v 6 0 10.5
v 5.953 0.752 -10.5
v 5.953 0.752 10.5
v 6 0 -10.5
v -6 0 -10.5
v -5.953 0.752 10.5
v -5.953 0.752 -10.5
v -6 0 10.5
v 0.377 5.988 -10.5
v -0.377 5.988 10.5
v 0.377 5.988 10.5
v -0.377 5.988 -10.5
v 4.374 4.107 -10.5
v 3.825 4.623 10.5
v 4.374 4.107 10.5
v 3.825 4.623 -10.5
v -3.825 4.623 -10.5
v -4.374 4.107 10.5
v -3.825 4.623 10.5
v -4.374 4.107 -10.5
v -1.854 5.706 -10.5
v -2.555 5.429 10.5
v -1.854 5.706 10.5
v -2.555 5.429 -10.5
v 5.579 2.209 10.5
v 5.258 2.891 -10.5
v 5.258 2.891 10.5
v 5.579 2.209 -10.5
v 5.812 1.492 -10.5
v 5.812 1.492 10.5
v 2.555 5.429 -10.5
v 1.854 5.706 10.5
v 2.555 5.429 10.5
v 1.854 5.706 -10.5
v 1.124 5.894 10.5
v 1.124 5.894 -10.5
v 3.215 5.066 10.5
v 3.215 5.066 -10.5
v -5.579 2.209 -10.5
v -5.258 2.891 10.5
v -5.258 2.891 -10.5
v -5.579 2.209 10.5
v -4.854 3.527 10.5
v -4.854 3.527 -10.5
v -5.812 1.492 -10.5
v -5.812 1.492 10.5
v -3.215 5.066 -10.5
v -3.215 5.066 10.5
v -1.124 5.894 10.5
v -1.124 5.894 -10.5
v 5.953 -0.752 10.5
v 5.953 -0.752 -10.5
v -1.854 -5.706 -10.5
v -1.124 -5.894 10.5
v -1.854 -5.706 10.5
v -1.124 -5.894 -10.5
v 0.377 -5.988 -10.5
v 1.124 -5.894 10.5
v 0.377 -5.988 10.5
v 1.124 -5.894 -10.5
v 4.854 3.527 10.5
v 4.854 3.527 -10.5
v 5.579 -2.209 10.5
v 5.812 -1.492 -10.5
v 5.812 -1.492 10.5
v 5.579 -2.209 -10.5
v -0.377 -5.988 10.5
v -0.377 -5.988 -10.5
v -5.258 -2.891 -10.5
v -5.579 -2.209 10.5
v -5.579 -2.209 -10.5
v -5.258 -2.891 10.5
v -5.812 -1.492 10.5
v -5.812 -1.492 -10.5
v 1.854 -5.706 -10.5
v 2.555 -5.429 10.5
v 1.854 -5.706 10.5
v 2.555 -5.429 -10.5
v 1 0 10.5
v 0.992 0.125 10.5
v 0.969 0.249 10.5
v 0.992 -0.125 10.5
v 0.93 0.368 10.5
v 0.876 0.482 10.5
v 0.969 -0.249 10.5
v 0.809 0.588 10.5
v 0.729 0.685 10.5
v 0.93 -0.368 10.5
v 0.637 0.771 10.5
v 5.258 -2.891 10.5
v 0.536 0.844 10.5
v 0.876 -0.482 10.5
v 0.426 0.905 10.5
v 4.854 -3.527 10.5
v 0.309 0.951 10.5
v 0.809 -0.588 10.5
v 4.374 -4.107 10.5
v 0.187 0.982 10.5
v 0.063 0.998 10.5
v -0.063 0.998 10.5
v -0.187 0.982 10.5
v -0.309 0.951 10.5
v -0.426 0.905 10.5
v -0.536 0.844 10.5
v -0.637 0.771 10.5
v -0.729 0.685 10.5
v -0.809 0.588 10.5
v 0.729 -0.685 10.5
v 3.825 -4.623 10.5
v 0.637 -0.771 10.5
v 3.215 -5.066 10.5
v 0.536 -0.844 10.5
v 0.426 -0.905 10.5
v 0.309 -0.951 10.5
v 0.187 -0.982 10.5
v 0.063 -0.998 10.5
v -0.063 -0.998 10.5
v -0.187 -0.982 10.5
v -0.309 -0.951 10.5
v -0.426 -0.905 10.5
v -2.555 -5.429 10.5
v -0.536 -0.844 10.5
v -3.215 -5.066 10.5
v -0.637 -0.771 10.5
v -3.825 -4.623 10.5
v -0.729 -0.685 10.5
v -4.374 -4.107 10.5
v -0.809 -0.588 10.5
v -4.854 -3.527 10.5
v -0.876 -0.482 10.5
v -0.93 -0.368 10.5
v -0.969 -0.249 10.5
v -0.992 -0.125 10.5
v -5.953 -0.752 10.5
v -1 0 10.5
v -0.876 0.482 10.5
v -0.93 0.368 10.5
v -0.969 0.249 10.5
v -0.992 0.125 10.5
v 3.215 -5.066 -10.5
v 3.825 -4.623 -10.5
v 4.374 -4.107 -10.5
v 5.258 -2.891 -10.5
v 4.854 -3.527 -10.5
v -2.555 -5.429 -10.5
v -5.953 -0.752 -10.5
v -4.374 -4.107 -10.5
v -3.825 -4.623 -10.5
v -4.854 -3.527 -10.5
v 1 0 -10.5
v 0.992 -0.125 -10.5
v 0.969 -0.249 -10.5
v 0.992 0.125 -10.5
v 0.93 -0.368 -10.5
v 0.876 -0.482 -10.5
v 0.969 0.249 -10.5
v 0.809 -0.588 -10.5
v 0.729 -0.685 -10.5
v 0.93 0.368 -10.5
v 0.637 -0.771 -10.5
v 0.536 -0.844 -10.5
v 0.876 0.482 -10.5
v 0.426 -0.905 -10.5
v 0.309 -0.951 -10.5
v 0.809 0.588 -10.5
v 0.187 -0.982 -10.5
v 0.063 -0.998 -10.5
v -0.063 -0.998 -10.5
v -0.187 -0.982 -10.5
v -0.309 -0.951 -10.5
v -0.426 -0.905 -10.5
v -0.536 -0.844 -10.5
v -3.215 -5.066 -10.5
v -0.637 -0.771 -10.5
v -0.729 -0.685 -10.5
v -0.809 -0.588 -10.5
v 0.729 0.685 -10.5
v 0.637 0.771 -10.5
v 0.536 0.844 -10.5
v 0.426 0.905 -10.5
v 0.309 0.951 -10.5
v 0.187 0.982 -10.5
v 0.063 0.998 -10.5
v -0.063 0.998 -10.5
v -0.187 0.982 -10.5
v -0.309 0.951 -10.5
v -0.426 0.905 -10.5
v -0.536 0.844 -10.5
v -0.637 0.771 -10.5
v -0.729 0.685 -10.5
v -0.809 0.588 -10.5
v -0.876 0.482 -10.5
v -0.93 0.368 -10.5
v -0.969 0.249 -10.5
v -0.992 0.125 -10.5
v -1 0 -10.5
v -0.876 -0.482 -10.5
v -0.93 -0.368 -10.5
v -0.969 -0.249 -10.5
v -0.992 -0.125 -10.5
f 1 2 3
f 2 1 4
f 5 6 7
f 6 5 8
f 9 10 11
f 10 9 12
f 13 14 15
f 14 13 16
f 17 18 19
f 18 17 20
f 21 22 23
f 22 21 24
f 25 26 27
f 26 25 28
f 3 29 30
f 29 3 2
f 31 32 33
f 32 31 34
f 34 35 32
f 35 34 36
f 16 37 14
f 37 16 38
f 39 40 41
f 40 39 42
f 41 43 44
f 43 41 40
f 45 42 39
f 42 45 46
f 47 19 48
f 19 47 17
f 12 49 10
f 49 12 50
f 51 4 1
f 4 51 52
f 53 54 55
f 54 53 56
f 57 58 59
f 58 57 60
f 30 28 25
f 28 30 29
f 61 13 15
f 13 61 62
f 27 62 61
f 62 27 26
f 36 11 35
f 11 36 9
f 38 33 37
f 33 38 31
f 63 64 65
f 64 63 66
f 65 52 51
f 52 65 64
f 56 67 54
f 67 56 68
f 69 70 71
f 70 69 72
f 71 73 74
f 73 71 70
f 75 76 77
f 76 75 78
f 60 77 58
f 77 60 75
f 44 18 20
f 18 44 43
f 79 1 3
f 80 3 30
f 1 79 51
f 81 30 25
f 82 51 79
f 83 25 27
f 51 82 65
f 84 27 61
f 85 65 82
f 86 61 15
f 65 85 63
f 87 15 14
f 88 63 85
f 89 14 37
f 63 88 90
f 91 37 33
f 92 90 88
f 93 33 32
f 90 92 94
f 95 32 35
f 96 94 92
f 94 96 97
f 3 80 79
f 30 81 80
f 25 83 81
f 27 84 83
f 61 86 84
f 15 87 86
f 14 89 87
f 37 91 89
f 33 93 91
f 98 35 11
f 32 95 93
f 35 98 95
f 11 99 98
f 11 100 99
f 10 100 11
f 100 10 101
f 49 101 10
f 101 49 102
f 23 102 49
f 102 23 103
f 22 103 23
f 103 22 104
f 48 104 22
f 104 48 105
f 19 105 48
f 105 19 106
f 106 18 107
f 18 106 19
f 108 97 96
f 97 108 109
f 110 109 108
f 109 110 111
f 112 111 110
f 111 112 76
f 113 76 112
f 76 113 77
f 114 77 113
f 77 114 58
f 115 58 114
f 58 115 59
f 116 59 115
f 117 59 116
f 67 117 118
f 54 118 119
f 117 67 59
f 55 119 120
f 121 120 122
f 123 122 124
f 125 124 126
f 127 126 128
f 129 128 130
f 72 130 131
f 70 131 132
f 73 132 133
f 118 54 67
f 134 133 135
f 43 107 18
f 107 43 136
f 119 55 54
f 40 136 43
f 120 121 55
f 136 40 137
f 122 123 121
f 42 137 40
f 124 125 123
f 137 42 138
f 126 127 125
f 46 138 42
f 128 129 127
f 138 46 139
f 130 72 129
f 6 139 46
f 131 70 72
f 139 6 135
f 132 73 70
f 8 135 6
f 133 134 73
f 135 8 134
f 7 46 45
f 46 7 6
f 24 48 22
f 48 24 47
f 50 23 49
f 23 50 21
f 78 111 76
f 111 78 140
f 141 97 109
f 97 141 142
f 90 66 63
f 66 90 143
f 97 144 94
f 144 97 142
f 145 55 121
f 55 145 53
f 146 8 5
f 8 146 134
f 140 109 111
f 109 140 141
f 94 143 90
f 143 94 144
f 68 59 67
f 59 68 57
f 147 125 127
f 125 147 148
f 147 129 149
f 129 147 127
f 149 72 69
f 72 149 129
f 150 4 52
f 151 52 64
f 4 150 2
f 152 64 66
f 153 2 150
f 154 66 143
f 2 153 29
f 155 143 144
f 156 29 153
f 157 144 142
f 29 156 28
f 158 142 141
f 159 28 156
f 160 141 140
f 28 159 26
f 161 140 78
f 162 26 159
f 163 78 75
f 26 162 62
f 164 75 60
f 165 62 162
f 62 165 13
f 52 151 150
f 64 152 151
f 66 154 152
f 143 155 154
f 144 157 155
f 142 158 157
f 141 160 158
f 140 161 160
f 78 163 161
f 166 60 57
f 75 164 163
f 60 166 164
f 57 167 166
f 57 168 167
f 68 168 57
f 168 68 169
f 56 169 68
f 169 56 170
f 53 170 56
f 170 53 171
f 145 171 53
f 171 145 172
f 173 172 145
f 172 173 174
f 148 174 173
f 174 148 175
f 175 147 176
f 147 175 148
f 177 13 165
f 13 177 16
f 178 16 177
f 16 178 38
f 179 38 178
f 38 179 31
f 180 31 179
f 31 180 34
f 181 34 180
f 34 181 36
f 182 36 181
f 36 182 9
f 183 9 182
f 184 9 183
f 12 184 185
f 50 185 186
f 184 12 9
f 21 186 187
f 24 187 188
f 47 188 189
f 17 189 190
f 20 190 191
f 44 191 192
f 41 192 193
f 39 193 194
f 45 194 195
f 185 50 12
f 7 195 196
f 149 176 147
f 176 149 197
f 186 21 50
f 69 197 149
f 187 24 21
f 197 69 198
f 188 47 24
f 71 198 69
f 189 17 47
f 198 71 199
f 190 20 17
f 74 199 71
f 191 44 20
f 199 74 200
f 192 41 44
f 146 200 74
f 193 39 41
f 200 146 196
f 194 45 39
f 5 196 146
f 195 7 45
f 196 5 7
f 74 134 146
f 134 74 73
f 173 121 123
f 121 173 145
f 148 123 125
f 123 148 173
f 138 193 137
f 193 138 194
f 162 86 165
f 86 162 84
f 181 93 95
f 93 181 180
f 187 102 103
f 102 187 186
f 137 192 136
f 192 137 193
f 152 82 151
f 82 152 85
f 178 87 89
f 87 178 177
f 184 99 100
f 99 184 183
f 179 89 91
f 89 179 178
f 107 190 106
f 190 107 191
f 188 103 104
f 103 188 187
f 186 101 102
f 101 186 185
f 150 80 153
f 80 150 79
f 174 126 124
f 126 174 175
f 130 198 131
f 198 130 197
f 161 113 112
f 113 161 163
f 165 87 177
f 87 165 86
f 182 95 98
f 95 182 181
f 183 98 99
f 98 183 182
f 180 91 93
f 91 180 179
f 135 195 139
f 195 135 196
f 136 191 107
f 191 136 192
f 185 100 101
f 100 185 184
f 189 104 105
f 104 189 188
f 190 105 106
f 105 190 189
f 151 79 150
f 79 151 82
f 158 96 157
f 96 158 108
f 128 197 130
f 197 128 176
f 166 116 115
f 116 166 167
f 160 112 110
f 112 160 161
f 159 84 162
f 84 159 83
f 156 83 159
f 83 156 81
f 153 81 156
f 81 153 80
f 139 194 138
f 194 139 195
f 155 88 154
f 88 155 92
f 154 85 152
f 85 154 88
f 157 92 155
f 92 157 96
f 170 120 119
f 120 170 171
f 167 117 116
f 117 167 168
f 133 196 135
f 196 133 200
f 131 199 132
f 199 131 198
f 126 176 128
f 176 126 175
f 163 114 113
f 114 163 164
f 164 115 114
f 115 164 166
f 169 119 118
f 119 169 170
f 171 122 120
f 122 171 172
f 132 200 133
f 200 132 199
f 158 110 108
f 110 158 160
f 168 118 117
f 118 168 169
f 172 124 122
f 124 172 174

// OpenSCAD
$fn = 50;


difference() {
	union() {
		translate(v = [0, 0, -10.5000000000]) {
			cylinder(h = 21, r = 6.0000000000);
		}
	}
	union() {
		translate(v = [0, 0, -100.0000000000]) {
			cylinder(h = 200, r = 1.0000000000);
		}
	}
}
